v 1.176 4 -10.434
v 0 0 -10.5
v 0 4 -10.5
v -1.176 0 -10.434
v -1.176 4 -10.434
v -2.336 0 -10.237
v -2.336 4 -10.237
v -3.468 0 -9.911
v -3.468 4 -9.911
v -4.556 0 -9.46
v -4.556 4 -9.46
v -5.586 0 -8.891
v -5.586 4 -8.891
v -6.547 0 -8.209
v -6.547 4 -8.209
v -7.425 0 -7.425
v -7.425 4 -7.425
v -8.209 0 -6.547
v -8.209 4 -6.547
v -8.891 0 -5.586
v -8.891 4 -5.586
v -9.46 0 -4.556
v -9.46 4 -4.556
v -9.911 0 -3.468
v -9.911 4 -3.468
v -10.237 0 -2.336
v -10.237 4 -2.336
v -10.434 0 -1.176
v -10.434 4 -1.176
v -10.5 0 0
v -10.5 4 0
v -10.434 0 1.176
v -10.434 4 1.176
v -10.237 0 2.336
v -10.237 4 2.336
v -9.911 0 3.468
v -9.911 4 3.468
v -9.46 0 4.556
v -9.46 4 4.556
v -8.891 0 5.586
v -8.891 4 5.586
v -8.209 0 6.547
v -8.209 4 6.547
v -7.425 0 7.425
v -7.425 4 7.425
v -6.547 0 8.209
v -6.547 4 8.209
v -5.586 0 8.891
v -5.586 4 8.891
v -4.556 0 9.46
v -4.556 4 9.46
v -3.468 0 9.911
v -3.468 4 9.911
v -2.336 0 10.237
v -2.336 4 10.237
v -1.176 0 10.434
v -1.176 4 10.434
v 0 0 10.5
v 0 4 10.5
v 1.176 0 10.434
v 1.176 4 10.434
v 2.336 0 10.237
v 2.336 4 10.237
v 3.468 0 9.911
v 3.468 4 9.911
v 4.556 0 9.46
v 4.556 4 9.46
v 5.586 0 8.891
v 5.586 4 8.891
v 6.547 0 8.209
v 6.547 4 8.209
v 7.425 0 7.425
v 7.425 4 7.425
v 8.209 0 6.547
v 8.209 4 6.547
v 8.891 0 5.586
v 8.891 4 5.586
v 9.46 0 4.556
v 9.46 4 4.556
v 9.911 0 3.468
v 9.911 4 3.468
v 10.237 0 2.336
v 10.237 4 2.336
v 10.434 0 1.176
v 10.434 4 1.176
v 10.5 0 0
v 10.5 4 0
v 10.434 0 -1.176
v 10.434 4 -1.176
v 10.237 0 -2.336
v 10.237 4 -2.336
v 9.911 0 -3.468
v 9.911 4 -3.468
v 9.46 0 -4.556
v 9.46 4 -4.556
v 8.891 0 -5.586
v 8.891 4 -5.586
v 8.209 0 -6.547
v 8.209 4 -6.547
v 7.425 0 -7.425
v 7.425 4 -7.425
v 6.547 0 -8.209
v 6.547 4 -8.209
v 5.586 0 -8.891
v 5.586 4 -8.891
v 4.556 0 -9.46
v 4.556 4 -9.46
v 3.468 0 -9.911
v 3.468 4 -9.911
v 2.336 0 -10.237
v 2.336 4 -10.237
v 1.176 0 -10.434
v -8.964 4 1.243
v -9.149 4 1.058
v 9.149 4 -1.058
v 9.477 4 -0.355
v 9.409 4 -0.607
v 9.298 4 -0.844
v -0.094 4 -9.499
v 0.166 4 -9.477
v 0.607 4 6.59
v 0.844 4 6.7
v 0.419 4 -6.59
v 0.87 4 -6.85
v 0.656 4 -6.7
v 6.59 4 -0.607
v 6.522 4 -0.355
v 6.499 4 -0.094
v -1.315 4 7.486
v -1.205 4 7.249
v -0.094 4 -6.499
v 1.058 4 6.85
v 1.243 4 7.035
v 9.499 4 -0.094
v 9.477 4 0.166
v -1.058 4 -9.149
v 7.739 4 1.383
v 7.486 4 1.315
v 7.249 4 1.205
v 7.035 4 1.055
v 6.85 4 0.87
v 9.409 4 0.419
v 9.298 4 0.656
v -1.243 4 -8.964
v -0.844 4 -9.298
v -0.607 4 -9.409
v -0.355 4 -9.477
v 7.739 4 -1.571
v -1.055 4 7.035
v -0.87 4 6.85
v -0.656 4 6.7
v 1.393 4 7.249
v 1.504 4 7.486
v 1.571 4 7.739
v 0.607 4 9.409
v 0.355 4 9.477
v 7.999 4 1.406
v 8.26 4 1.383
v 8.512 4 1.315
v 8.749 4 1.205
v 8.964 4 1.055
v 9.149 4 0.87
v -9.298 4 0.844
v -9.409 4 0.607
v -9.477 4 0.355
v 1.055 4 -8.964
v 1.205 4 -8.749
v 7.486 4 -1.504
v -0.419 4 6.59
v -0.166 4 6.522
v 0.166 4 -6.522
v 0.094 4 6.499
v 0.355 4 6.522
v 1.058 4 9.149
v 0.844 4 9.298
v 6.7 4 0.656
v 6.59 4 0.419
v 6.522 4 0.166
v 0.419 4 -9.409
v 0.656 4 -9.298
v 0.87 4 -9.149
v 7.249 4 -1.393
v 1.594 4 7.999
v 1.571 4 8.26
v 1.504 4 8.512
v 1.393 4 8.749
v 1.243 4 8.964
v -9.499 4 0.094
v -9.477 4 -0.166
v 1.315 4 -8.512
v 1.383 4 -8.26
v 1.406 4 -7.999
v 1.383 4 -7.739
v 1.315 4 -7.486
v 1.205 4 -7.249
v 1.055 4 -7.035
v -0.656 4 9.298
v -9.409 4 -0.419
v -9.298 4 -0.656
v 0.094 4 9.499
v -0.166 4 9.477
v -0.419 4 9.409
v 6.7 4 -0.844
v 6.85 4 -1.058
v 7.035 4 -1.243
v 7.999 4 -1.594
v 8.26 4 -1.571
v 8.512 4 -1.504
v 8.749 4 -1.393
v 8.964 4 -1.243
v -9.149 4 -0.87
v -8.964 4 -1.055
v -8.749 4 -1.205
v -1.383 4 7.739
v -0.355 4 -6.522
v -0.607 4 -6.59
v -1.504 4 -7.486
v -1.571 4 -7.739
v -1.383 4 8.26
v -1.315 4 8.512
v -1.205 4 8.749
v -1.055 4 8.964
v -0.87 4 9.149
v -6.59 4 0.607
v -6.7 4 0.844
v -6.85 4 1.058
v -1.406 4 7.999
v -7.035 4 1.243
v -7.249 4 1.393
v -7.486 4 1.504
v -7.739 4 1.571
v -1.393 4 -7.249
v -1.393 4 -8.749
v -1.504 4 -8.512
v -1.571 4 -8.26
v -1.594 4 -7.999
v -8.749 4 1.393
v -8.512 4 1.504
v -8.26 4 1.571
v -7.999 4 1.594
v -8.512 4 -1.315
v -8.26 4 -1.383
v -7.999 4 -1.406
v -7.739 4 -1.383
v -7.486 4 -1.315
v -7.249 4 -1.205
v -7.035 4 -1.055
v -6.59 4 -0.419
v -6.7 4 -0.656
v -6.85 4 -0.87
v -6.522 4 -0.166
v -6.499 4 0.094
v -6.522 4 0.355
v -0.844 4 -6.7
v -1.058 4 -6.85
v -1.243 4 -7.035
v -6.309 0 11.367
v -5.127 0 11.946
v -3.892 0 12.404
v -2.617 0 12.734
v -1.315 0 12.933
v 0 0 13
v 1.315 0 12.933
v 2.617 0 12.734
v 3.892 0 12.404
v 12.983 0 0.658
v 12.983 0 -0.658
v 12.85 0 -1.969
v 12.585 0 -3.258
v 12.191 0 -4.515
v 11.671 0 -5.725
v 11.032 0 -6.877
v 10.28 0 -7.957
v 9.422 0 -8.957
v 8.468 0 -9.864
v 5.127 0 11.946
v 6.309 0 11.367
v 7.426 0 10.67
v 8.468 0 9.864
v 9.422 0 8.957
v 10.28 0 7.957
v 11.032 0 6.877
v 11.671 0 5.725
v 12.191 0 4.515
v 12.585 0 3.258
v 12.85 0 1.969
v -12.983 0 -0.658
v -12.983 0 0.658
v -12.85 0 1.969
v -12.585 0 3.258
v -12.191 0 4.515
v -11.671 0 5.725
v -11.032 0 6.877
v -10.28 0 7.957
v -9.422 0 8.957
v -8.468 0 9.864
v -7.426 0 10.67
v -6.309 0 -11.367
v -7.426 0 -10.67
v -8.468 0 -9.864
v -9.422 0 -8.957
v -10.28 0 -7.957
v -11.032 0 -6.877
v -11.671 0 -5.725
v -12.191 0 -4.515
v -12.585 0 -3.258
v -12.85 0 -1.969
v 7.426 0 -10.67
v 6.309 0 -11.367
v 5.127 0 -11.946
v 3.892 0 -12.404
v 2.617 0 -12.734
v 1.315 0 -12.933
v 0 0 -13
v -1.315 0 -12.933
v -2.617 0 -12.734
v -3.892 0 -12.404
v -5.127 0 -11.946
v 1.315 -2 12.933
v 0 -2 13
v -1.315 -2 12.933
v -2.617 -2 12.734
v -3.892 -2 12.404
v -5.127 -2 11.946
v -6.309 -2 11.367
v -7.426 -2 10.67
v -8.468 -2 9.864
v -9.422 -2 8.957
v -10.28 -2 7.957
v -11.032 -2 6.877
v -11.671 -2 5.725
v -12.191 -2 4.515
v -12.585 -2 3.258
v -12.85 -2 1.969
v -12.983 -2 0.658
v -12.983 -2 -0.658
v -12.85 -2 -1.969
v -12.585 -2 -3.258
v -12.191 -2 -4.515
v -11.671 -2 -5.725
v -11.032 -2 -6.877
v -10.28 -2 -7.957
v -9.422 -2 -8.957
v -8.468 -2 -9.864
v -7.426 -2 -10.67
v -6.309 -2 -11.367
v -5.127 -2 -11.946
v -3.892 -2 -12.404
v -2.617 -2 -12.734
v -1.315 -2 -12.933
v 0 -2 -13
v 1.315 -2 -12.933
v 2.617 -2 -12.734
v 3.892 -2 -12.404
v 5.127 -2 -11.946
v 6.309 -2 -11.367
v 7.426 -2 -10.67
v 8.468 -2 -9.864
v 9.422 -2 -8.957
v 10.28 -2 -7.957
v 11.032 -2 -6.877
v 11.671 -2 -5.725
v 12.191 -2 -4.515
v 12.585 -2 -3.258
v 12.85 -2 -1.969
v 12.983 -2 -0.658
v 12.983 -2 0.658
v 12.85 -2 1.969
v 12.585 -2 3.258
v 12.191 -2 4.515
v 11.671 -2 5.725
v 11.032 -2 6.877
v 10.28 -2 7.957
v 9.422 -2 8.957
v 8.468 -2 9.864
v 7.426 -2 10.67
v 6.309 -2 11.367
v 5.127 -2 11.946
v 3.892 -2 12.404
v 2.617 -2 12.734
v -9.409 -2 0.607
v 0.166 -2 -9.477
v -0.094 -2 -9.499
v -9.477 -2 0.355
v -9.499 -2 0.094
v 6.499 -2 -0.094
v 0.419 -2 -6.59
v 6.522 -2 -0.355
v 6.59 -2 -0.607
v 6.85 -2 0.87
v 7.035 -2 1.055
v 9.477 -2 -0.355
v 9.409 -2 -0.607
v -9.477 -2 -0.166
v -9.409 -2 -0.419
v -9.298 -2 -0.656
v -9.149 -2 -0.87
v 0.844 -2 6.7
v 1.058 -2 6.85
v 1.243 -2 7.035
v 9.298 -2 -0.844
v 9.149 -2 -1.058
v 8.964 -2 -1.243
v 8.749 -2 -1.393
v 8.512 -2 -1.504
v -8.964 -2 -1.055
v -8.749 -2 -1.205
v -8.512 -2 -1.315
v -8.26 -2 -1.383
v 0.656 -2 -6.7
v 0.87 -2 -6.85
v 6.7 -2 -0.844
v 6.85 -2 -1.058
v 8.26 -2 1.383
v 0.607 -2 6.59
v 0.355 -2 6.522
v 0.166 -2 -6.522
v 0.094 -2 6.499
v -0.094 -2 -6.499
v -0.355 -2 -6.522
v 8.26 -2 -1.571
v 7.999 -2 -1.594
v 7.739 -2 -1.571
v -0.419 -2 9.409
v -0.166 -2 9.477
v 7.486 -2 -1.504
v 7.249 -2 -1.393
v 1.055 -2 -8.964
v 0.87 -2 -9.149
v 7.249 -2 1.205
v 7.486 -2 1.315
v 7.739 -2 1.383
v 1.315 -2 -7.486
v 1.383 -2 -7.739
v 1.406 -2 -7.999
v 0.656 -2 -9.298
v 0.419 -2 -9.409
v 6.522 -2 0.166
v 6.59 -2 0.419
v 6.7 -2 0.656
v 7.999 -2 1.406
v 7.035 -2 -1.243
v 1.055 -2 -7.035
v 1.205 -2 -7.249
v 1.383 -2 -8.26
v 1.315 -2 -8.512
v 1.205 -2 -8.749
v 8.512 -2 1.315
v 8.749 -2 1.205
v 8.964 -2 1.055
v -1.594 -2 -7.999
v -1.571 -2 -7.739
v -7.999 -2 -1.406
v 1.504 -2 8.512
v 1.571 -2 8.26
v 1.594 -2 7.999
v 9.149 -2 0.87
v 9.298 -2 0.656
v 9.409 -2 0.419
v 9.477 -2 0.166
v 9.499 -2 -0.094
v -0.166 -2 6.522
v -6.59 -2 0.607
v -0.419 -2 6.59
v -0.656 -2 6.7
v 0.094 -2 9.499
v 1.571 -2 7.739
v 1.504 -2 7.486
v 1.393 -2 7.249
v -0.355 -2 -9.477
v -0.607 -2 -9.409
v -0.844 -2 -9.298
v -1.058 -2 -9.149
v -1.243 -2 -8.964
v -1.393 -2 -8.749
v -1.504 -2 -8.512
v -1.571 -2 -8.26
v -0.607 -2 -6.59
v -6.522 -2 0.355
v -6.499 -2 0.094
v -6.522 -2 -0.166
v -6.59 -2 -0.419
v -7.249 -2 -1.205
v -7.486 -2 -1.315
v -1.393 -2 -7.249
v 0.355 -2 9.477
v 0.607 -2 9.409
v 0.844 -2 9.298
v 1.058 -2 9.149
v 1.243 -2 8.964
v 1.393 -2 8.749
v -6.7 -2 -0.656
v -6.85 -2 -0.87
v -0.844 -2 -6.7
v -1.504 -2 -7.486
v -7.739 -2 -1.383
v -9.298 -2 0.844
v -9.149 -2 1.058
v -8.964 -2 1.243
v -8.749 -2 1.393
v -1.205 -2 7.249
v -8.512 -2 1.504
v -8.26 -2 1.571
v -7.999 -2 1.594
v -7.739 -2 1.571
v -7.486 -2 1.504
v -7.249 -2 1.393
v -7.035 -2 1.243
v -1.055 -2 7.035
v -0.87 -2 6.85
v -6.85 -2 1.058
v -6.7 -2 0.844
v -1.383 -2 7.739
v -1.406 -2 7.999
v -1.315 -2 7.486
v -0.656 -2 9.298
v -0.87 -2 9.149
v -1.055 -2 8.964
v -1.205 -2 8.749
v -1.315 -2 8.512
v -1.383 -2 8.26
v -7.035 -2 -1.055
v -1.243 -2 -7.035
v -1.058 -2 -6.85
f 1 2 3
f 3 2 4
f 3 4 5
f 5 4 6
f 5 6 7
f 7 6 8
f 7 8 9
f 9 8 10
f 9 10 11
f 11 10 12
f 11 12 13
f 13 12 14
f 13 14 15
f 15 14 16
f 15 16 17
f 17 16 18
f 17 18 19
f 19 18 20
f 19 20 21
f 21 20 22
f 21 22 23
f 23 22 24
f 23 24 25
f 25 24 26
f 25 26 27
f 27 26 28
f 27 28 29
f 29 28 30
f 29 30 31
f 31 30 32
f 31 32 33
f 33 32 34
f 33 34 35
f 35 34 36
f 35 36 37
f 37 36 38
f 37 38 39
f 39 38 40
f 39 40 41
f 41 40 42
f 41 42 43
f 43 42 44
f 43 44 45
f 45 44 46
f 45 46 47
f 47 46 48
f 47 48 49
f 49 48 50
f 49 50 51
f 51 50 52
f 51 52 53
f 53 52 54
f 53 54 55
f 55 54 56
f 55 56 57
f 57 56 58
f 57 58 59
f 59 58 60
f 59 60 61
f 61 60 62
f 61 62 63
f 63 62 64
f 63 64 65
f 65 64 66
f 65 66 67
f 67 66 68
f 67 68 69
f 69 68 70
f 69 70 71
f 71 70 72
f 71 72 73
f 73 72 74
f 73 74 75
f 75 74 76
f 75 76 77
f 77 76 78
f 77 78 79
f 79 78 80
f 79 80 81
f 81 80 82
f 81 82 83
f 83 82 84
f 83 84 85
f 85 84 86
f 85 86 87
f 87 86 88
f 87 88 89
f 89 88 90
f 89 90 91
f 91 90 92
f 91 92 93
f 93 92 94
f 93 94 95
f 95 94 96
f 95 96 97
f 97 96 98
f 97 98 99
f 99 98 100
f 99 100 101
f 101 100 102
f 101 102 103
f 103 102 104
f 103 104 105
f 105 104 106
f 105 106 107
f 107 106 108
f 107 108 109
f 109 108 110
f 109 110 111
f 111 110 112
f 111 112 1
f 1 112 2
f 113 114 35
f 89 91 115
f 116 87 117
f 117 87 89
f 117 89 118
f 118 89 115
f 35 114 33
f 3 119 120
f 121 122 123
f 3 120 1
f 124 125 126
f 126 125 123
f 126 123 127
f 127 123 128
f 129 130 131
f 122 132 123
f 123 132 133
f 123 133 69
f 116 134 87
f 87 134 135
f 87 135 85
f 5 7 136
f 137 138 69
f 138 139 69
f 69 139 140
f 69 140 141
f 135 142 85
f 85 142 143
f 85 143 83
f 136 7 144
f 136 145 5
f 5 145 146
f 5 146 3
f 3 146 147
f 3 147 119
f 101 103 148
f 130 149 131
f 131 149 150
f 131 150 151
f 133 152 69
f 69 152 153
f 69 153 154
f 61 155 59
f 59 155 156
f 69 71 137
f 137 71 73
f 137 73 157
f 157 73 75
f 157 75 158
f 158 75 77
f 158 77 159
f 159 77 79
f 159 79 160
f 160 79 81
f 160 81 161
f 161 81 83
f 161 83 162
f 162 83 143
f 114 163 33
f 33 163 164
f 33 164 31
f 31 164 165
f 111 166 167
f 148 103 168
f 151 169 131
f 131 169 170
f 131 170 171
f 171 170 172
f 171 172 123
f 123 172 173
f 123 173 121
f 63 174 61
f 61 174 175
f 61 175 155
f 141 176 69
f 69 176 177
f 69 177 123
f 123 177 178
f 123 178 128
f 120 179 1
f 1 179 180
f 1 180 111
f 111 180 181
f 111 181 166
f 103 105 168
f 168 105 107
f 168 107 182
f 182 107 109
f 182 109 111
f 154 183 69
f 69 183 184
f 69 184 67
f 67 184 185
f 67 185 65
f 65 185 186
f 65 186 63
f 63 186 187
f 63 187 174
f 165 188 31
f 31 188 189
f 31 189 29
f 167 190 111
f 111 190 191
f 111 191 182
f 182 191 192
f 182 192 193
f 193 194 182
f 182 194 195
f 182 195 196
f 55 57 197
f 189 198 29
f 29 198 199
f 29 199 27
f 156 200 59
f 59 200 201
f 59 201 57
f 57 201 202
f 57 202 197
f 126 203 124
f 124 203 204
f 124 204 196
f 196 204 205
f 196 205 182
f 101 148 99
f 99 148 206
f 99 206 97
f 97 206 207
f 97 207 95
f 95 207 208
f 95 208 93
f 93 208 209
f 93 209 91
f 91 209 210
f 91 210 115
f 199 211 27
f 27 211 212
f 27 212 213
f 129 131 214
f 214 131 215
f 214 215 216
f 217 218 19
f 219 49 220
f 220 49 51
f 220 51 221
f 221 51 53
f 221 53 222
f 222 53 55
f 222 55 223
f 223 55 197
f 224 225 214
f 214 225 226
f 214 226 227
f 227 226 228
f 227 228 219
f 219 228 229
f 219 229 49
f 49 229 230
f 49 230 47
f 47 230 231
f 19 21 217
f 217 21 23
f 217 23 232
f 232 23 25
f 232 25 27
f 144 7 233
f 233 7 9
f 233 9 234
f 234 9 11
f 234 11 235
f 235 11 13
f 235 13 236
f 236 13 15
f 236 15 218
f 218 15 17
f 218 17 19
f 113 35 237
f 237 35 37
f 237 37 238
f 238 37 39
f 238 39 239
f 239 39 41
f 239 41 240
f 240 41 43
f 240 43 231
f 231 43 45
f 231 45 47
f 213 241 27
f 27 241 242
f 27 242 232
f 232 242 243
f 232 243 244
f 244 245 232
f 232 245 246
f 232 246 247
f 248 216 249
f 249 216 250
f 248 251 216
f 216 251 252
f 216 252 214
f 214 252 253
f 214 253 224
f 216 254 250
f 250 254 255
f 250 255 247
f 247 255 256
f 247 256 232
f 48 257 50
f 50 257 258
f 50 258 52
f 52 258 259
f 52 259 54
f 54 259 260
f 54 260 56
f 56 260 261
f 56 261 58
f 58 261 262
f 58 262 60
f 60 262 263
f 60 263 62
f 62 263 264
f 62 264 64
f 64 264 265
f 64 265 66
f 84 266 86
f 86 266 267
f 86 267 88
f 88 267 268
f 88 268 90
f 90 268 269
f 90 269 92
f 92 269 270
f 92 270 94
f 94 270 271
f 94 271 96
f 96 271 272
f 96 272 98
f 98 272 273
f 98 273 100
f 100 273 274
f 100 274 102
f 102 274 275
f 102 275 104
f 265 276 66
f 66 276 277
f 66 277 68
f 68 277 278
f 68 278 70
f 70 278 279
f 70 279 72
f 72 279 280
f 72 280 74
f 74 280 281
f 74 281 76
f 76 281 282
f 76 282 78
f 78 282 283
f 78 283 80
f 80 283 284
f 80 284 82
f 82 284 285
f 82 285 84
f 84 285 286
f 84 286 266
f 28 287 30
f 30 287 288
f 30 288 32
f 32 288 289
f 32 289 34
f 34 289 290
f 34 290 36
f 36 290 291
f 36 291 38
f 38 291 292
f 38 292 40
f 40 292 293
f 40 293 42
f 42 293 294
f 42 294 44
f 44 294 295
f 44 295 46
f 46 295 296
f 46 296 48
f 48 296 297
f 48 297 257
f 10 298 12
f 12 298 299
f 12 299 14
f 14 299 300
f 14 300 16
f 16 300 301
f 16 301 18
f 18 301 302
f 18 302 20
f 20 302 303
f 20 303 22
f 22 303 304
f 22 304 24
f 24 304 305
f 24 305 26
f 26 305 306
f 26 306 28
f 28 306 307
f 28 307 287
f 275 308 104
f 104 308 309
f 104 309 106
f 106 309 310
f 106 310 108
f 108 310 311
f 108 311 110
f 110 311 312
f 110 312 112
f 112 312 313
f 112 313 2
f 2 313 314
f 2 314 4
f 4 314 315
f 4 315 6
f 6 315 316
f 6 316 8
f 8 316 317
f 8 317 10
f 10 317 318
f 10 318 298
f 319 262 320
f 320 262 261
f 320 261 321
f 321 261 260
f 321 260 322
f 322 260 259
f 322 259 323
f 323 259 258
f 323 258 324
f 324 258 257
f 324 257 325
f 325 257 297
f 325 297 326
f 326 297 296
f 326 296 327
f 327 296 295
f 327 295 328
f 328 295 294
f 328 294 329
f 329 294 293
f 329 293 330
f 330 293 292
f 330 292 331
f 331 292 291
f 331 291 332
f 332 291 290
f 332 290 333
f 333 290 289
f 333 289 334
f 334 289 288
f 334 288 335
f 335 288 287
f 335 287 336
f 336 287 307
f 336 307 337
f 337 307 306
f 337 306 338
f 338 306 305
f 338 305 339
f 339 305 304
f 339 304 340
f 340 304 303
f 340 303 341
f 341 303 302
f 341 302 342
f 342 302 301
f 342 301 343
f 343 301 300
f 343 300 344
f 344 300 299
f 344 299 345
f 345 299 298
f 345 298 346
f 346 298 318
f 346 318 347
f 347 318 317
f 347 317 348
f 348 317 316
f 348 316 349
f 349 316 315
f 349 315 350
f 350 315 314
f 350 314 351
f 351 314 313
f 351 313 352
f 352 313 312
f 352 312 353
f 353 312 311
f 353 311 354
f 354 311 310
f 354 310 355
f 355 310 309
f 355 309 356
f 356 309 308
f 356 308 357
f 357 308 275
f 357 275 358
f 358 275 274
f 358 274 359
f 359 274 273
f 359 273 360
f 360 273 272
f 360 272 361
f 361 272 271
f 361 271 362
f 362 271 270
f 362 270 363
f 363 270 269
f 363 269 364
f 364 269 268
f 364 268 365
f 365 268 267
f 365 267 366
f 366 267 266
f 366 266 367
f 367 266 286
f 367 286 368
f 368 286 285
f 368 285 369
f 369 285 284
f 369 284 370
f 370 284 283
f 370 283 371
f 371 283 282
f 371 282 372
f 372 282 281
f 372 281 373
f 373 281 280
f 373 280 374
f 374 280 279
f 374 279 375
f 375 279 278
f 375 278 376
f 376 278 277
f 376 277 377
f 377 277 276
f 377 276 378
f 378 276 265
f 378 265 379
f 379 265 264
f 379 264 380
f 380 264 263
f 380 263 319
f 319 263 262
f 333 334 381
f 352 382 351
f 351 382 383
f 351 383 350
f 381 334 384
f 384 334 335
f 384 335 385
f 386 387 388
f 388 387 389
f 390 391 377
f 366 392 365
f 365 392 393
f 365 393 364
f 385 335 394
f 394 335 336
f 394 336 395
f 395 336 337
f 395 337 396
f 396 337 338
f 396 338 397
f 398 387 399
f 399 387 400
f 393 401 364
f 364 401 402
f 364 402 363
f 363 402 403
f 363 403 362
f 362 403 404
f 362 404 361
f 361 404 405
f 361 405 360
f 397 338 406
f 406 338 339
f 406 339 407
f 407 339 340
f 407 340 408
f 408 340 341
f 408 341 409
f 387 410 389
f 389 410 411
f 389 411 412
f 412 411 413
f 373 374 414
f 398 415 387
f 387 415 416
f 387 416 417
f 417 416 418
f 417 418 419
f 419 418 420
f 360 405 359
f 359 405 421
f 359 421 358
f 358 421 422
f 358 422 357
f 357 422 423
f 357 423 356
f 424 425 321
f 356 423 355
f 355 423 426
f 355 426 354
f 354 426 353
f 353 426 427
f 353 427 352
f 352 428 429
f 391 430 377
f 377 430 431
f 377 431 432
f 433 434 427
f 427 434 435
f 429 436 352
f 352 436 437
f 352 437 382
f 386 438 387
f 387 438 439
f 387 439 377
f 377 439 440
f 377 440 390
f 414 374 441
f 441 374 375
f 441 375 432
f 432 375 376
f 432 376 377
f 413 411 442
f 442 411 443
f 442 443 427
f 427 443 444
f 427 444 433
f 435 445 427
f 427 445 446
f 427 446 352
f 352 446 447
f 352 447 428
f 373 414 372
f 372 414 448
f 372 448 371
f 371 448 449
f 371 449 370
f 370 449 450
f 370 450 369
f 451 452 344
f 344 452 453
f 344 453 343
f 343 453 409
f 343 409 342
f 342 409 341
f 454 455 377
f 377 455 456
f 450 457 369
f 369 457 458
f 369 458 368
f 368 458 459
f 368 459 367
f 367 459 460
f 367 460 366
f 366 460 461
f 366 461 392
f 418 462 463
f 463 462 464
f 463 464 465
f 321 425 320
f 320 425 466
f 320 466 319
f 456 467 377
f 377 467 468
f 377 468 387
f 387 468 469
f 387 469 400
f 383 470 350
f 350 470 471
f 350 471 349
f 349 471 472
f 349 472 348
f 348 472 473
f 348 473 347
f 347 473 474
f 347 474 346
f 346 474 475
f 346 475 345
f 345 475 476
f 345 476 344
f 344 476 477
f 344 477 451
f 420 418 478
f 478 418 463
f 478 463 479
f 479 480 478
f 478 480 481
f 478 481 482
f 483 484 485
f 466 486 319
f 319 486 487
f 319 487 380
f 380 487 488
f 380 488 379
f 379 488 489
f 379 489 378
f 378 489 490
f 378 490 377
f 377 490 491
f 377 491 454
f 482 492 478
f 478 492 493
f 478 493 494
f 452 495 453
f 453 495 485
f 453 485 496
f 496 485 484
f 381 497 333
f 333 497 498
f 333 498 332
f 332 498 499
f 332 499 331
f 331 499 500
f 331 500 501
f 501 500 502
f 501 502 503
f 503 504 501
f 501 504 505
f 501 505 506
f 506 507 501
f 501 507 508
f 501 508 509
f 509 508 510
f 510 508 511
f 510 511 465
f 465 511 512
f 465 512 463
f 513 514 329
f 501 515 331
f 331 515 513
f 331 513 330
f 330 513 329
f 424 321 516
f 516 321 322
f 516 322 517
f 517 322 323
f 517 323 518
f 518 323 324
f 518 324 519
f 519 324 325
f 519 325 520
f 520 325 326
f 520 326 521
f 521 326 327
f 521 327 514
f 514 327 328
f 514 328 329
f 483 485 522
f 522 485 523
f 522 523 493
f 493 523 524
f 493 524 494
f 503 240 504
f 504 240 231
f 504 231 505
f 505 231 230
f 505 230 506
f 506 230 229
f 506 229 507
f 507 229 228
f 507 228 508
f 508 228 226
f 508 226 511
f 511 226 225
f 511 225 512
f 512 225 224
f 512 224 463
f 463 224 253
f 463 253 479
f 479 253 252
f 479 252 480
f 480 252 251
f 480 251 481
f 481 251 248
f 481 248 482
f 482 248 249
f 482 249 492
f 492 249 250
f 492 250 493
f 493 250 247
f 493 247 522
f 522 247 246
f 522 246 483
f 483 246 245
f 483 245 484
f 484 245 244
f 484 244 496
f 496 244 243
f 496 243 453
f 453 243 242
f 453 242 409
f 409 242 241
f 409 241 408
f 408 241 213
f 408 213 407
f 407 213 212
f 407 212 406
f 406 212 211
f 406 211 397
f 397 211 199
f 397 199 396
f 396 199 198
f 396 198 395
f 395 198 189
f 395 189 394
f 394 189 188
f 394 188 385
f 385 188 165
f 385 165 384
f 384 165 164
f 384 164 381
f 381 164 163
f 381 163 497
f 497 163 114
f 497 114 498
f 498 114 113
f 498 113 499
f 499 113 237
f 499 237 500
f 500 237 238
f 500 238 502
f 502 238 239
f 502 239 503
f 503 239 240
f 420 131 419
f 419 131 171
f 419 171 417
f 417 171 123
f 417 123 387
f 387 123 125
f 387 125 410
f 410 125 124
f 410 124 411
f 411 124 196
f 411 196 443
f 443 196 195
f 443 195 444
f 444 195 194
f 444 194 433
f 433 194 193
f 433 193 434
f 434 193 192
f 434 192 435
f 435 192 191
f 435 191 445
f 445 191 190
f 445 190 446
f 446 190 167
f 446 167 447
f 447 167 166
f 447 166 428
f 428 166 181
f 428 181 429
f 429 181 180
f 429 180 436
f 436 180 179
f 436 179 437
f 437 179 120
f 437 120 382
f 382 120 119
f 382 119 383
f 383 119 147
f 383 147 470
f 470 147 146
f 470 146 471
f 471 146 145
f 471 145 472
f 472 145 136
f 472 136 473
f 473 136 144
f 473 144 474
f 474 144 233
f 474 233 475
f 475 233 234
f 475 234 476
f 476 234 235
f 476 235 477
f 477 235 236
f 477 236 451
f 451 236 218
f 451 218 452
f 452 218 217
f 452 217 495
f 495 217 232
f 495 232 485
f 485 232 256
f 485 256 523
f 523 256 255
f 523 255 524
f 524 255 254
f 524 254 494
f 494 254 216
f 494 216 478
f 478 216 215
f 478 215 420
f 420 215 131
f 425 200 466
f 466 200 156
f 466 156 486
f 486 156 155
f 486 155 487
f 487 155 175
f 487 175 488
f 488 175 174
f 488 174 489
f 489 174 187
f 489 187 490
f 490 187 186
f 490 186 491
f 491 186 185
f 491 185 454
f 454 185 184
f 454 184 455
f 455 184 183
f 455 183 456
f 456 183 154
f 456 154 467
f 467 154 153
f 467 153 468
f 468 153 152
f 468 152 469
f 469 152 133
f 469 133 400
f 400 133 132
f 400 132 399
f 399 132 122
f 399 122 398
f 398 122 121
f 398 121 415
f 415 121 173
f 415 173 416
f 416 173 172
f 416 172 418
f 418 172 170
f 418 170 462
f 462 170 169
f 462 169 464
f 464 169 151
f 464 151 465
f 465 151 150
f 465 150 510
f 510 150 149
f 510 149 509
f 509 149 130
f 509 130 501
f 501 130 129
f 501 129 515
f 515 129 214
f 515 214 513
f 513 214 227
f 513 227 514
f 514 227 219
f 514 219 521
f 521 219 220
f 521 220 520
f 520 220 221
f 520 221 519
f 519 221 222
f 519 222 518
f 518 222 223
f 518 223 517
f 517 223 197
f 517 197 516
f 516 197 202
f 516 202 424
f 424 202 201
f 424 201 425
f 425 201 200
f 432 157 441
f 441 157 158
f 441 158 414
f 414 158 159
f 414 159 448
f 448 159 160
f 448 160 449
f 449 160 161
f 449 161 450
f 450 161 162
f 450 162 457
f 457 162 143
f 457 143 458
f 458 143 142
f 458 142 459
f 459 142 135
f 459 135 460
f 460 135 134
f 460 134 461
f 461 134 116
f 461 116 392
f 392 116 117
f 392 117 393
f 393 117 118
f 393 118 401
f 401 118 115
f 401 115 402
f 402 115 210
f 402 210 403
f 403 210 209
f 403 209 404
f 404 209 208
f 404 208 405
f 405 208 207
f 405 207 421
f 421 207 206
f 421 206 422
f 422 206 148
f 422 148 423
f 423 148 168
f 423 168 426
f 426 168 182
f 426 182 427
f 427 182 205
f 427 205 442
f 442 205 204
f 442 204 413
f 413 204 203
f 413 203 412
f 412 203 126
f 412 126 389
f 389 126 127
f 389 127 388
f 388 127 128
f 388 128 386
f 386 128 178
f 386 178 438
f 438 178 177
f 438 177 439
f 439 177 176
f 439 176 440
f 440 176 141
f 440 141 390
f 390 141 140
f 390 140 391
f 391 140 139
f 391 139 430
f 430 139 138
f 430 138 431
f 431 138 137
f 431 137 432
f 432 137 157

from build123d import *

# Parameters (mm, degrees)
ESQUISSE1_R             = 10.5
BOSS_EXTRU_1_DEPTH      = 4
ESQUISSE2_R             = 13
BOSS_EXTRU_2_DEPTH      = 2
ESQUISSE3_R             = 1.5
ENL_V_MAT_EXTRU_1_DEPTH = 20.339079606


with BuildPart() as part:
    # Esquisse1 → Boss.-Extru.1 (new body)
    with BuildSketch(Plane(origin=(0, 0, 0), x_dir=(1, 0, 0), z_dir=(0, 1, 0))):
        with Locations(Location((0, 0, 0), (0, 0, 270))):
            Circle(ESQUISSE1_R)
    extrude(amount=BOSS_EXTRU_1_DEPTH)

    # Esquisse2 → Boss.-Extru.2 (add)
    with BuildSketch(Plane.XZ):
        with Locations(Location((0, 0, 0), (0, 0, 270))):
            Circle(ESQUISSE2_R)
    extrude(amount=BOSS_EXTRU_2_DEPTH)

    # Esquisse3 → Enlèv. mat.-Extru.1 (cut, through all)
    with BuildSketch(Plane(origin=(0, 4, 0), x_dir=(1, 0, 0), z_dir=(0, 1, 0))):
        with Locations(Location((-7.999447207, -0.094044544, 0), (0, 0, 270))):
            Circle(ESQUISSE3_R)
        with Locations(Location((-0.094044544, 7.999447207, 0), (0, 0, 270))):
            Circle(ESQUISSE3_R)
        with Locations(Location((0.094044544, -7.999447207, 0), (0, 0, 270))):
            Circle(ESQUISSE3_R)
        with Locations(Location((7.999447207, 0.094044544, 0), (0, 0, 270))):
            Circle(ESQUISSE3_R)
    extrude(amount=-ENL_V_MAT_EXTRU_1_DEPTH, mode=Mode.SUBTRACT)


solid = part.part
